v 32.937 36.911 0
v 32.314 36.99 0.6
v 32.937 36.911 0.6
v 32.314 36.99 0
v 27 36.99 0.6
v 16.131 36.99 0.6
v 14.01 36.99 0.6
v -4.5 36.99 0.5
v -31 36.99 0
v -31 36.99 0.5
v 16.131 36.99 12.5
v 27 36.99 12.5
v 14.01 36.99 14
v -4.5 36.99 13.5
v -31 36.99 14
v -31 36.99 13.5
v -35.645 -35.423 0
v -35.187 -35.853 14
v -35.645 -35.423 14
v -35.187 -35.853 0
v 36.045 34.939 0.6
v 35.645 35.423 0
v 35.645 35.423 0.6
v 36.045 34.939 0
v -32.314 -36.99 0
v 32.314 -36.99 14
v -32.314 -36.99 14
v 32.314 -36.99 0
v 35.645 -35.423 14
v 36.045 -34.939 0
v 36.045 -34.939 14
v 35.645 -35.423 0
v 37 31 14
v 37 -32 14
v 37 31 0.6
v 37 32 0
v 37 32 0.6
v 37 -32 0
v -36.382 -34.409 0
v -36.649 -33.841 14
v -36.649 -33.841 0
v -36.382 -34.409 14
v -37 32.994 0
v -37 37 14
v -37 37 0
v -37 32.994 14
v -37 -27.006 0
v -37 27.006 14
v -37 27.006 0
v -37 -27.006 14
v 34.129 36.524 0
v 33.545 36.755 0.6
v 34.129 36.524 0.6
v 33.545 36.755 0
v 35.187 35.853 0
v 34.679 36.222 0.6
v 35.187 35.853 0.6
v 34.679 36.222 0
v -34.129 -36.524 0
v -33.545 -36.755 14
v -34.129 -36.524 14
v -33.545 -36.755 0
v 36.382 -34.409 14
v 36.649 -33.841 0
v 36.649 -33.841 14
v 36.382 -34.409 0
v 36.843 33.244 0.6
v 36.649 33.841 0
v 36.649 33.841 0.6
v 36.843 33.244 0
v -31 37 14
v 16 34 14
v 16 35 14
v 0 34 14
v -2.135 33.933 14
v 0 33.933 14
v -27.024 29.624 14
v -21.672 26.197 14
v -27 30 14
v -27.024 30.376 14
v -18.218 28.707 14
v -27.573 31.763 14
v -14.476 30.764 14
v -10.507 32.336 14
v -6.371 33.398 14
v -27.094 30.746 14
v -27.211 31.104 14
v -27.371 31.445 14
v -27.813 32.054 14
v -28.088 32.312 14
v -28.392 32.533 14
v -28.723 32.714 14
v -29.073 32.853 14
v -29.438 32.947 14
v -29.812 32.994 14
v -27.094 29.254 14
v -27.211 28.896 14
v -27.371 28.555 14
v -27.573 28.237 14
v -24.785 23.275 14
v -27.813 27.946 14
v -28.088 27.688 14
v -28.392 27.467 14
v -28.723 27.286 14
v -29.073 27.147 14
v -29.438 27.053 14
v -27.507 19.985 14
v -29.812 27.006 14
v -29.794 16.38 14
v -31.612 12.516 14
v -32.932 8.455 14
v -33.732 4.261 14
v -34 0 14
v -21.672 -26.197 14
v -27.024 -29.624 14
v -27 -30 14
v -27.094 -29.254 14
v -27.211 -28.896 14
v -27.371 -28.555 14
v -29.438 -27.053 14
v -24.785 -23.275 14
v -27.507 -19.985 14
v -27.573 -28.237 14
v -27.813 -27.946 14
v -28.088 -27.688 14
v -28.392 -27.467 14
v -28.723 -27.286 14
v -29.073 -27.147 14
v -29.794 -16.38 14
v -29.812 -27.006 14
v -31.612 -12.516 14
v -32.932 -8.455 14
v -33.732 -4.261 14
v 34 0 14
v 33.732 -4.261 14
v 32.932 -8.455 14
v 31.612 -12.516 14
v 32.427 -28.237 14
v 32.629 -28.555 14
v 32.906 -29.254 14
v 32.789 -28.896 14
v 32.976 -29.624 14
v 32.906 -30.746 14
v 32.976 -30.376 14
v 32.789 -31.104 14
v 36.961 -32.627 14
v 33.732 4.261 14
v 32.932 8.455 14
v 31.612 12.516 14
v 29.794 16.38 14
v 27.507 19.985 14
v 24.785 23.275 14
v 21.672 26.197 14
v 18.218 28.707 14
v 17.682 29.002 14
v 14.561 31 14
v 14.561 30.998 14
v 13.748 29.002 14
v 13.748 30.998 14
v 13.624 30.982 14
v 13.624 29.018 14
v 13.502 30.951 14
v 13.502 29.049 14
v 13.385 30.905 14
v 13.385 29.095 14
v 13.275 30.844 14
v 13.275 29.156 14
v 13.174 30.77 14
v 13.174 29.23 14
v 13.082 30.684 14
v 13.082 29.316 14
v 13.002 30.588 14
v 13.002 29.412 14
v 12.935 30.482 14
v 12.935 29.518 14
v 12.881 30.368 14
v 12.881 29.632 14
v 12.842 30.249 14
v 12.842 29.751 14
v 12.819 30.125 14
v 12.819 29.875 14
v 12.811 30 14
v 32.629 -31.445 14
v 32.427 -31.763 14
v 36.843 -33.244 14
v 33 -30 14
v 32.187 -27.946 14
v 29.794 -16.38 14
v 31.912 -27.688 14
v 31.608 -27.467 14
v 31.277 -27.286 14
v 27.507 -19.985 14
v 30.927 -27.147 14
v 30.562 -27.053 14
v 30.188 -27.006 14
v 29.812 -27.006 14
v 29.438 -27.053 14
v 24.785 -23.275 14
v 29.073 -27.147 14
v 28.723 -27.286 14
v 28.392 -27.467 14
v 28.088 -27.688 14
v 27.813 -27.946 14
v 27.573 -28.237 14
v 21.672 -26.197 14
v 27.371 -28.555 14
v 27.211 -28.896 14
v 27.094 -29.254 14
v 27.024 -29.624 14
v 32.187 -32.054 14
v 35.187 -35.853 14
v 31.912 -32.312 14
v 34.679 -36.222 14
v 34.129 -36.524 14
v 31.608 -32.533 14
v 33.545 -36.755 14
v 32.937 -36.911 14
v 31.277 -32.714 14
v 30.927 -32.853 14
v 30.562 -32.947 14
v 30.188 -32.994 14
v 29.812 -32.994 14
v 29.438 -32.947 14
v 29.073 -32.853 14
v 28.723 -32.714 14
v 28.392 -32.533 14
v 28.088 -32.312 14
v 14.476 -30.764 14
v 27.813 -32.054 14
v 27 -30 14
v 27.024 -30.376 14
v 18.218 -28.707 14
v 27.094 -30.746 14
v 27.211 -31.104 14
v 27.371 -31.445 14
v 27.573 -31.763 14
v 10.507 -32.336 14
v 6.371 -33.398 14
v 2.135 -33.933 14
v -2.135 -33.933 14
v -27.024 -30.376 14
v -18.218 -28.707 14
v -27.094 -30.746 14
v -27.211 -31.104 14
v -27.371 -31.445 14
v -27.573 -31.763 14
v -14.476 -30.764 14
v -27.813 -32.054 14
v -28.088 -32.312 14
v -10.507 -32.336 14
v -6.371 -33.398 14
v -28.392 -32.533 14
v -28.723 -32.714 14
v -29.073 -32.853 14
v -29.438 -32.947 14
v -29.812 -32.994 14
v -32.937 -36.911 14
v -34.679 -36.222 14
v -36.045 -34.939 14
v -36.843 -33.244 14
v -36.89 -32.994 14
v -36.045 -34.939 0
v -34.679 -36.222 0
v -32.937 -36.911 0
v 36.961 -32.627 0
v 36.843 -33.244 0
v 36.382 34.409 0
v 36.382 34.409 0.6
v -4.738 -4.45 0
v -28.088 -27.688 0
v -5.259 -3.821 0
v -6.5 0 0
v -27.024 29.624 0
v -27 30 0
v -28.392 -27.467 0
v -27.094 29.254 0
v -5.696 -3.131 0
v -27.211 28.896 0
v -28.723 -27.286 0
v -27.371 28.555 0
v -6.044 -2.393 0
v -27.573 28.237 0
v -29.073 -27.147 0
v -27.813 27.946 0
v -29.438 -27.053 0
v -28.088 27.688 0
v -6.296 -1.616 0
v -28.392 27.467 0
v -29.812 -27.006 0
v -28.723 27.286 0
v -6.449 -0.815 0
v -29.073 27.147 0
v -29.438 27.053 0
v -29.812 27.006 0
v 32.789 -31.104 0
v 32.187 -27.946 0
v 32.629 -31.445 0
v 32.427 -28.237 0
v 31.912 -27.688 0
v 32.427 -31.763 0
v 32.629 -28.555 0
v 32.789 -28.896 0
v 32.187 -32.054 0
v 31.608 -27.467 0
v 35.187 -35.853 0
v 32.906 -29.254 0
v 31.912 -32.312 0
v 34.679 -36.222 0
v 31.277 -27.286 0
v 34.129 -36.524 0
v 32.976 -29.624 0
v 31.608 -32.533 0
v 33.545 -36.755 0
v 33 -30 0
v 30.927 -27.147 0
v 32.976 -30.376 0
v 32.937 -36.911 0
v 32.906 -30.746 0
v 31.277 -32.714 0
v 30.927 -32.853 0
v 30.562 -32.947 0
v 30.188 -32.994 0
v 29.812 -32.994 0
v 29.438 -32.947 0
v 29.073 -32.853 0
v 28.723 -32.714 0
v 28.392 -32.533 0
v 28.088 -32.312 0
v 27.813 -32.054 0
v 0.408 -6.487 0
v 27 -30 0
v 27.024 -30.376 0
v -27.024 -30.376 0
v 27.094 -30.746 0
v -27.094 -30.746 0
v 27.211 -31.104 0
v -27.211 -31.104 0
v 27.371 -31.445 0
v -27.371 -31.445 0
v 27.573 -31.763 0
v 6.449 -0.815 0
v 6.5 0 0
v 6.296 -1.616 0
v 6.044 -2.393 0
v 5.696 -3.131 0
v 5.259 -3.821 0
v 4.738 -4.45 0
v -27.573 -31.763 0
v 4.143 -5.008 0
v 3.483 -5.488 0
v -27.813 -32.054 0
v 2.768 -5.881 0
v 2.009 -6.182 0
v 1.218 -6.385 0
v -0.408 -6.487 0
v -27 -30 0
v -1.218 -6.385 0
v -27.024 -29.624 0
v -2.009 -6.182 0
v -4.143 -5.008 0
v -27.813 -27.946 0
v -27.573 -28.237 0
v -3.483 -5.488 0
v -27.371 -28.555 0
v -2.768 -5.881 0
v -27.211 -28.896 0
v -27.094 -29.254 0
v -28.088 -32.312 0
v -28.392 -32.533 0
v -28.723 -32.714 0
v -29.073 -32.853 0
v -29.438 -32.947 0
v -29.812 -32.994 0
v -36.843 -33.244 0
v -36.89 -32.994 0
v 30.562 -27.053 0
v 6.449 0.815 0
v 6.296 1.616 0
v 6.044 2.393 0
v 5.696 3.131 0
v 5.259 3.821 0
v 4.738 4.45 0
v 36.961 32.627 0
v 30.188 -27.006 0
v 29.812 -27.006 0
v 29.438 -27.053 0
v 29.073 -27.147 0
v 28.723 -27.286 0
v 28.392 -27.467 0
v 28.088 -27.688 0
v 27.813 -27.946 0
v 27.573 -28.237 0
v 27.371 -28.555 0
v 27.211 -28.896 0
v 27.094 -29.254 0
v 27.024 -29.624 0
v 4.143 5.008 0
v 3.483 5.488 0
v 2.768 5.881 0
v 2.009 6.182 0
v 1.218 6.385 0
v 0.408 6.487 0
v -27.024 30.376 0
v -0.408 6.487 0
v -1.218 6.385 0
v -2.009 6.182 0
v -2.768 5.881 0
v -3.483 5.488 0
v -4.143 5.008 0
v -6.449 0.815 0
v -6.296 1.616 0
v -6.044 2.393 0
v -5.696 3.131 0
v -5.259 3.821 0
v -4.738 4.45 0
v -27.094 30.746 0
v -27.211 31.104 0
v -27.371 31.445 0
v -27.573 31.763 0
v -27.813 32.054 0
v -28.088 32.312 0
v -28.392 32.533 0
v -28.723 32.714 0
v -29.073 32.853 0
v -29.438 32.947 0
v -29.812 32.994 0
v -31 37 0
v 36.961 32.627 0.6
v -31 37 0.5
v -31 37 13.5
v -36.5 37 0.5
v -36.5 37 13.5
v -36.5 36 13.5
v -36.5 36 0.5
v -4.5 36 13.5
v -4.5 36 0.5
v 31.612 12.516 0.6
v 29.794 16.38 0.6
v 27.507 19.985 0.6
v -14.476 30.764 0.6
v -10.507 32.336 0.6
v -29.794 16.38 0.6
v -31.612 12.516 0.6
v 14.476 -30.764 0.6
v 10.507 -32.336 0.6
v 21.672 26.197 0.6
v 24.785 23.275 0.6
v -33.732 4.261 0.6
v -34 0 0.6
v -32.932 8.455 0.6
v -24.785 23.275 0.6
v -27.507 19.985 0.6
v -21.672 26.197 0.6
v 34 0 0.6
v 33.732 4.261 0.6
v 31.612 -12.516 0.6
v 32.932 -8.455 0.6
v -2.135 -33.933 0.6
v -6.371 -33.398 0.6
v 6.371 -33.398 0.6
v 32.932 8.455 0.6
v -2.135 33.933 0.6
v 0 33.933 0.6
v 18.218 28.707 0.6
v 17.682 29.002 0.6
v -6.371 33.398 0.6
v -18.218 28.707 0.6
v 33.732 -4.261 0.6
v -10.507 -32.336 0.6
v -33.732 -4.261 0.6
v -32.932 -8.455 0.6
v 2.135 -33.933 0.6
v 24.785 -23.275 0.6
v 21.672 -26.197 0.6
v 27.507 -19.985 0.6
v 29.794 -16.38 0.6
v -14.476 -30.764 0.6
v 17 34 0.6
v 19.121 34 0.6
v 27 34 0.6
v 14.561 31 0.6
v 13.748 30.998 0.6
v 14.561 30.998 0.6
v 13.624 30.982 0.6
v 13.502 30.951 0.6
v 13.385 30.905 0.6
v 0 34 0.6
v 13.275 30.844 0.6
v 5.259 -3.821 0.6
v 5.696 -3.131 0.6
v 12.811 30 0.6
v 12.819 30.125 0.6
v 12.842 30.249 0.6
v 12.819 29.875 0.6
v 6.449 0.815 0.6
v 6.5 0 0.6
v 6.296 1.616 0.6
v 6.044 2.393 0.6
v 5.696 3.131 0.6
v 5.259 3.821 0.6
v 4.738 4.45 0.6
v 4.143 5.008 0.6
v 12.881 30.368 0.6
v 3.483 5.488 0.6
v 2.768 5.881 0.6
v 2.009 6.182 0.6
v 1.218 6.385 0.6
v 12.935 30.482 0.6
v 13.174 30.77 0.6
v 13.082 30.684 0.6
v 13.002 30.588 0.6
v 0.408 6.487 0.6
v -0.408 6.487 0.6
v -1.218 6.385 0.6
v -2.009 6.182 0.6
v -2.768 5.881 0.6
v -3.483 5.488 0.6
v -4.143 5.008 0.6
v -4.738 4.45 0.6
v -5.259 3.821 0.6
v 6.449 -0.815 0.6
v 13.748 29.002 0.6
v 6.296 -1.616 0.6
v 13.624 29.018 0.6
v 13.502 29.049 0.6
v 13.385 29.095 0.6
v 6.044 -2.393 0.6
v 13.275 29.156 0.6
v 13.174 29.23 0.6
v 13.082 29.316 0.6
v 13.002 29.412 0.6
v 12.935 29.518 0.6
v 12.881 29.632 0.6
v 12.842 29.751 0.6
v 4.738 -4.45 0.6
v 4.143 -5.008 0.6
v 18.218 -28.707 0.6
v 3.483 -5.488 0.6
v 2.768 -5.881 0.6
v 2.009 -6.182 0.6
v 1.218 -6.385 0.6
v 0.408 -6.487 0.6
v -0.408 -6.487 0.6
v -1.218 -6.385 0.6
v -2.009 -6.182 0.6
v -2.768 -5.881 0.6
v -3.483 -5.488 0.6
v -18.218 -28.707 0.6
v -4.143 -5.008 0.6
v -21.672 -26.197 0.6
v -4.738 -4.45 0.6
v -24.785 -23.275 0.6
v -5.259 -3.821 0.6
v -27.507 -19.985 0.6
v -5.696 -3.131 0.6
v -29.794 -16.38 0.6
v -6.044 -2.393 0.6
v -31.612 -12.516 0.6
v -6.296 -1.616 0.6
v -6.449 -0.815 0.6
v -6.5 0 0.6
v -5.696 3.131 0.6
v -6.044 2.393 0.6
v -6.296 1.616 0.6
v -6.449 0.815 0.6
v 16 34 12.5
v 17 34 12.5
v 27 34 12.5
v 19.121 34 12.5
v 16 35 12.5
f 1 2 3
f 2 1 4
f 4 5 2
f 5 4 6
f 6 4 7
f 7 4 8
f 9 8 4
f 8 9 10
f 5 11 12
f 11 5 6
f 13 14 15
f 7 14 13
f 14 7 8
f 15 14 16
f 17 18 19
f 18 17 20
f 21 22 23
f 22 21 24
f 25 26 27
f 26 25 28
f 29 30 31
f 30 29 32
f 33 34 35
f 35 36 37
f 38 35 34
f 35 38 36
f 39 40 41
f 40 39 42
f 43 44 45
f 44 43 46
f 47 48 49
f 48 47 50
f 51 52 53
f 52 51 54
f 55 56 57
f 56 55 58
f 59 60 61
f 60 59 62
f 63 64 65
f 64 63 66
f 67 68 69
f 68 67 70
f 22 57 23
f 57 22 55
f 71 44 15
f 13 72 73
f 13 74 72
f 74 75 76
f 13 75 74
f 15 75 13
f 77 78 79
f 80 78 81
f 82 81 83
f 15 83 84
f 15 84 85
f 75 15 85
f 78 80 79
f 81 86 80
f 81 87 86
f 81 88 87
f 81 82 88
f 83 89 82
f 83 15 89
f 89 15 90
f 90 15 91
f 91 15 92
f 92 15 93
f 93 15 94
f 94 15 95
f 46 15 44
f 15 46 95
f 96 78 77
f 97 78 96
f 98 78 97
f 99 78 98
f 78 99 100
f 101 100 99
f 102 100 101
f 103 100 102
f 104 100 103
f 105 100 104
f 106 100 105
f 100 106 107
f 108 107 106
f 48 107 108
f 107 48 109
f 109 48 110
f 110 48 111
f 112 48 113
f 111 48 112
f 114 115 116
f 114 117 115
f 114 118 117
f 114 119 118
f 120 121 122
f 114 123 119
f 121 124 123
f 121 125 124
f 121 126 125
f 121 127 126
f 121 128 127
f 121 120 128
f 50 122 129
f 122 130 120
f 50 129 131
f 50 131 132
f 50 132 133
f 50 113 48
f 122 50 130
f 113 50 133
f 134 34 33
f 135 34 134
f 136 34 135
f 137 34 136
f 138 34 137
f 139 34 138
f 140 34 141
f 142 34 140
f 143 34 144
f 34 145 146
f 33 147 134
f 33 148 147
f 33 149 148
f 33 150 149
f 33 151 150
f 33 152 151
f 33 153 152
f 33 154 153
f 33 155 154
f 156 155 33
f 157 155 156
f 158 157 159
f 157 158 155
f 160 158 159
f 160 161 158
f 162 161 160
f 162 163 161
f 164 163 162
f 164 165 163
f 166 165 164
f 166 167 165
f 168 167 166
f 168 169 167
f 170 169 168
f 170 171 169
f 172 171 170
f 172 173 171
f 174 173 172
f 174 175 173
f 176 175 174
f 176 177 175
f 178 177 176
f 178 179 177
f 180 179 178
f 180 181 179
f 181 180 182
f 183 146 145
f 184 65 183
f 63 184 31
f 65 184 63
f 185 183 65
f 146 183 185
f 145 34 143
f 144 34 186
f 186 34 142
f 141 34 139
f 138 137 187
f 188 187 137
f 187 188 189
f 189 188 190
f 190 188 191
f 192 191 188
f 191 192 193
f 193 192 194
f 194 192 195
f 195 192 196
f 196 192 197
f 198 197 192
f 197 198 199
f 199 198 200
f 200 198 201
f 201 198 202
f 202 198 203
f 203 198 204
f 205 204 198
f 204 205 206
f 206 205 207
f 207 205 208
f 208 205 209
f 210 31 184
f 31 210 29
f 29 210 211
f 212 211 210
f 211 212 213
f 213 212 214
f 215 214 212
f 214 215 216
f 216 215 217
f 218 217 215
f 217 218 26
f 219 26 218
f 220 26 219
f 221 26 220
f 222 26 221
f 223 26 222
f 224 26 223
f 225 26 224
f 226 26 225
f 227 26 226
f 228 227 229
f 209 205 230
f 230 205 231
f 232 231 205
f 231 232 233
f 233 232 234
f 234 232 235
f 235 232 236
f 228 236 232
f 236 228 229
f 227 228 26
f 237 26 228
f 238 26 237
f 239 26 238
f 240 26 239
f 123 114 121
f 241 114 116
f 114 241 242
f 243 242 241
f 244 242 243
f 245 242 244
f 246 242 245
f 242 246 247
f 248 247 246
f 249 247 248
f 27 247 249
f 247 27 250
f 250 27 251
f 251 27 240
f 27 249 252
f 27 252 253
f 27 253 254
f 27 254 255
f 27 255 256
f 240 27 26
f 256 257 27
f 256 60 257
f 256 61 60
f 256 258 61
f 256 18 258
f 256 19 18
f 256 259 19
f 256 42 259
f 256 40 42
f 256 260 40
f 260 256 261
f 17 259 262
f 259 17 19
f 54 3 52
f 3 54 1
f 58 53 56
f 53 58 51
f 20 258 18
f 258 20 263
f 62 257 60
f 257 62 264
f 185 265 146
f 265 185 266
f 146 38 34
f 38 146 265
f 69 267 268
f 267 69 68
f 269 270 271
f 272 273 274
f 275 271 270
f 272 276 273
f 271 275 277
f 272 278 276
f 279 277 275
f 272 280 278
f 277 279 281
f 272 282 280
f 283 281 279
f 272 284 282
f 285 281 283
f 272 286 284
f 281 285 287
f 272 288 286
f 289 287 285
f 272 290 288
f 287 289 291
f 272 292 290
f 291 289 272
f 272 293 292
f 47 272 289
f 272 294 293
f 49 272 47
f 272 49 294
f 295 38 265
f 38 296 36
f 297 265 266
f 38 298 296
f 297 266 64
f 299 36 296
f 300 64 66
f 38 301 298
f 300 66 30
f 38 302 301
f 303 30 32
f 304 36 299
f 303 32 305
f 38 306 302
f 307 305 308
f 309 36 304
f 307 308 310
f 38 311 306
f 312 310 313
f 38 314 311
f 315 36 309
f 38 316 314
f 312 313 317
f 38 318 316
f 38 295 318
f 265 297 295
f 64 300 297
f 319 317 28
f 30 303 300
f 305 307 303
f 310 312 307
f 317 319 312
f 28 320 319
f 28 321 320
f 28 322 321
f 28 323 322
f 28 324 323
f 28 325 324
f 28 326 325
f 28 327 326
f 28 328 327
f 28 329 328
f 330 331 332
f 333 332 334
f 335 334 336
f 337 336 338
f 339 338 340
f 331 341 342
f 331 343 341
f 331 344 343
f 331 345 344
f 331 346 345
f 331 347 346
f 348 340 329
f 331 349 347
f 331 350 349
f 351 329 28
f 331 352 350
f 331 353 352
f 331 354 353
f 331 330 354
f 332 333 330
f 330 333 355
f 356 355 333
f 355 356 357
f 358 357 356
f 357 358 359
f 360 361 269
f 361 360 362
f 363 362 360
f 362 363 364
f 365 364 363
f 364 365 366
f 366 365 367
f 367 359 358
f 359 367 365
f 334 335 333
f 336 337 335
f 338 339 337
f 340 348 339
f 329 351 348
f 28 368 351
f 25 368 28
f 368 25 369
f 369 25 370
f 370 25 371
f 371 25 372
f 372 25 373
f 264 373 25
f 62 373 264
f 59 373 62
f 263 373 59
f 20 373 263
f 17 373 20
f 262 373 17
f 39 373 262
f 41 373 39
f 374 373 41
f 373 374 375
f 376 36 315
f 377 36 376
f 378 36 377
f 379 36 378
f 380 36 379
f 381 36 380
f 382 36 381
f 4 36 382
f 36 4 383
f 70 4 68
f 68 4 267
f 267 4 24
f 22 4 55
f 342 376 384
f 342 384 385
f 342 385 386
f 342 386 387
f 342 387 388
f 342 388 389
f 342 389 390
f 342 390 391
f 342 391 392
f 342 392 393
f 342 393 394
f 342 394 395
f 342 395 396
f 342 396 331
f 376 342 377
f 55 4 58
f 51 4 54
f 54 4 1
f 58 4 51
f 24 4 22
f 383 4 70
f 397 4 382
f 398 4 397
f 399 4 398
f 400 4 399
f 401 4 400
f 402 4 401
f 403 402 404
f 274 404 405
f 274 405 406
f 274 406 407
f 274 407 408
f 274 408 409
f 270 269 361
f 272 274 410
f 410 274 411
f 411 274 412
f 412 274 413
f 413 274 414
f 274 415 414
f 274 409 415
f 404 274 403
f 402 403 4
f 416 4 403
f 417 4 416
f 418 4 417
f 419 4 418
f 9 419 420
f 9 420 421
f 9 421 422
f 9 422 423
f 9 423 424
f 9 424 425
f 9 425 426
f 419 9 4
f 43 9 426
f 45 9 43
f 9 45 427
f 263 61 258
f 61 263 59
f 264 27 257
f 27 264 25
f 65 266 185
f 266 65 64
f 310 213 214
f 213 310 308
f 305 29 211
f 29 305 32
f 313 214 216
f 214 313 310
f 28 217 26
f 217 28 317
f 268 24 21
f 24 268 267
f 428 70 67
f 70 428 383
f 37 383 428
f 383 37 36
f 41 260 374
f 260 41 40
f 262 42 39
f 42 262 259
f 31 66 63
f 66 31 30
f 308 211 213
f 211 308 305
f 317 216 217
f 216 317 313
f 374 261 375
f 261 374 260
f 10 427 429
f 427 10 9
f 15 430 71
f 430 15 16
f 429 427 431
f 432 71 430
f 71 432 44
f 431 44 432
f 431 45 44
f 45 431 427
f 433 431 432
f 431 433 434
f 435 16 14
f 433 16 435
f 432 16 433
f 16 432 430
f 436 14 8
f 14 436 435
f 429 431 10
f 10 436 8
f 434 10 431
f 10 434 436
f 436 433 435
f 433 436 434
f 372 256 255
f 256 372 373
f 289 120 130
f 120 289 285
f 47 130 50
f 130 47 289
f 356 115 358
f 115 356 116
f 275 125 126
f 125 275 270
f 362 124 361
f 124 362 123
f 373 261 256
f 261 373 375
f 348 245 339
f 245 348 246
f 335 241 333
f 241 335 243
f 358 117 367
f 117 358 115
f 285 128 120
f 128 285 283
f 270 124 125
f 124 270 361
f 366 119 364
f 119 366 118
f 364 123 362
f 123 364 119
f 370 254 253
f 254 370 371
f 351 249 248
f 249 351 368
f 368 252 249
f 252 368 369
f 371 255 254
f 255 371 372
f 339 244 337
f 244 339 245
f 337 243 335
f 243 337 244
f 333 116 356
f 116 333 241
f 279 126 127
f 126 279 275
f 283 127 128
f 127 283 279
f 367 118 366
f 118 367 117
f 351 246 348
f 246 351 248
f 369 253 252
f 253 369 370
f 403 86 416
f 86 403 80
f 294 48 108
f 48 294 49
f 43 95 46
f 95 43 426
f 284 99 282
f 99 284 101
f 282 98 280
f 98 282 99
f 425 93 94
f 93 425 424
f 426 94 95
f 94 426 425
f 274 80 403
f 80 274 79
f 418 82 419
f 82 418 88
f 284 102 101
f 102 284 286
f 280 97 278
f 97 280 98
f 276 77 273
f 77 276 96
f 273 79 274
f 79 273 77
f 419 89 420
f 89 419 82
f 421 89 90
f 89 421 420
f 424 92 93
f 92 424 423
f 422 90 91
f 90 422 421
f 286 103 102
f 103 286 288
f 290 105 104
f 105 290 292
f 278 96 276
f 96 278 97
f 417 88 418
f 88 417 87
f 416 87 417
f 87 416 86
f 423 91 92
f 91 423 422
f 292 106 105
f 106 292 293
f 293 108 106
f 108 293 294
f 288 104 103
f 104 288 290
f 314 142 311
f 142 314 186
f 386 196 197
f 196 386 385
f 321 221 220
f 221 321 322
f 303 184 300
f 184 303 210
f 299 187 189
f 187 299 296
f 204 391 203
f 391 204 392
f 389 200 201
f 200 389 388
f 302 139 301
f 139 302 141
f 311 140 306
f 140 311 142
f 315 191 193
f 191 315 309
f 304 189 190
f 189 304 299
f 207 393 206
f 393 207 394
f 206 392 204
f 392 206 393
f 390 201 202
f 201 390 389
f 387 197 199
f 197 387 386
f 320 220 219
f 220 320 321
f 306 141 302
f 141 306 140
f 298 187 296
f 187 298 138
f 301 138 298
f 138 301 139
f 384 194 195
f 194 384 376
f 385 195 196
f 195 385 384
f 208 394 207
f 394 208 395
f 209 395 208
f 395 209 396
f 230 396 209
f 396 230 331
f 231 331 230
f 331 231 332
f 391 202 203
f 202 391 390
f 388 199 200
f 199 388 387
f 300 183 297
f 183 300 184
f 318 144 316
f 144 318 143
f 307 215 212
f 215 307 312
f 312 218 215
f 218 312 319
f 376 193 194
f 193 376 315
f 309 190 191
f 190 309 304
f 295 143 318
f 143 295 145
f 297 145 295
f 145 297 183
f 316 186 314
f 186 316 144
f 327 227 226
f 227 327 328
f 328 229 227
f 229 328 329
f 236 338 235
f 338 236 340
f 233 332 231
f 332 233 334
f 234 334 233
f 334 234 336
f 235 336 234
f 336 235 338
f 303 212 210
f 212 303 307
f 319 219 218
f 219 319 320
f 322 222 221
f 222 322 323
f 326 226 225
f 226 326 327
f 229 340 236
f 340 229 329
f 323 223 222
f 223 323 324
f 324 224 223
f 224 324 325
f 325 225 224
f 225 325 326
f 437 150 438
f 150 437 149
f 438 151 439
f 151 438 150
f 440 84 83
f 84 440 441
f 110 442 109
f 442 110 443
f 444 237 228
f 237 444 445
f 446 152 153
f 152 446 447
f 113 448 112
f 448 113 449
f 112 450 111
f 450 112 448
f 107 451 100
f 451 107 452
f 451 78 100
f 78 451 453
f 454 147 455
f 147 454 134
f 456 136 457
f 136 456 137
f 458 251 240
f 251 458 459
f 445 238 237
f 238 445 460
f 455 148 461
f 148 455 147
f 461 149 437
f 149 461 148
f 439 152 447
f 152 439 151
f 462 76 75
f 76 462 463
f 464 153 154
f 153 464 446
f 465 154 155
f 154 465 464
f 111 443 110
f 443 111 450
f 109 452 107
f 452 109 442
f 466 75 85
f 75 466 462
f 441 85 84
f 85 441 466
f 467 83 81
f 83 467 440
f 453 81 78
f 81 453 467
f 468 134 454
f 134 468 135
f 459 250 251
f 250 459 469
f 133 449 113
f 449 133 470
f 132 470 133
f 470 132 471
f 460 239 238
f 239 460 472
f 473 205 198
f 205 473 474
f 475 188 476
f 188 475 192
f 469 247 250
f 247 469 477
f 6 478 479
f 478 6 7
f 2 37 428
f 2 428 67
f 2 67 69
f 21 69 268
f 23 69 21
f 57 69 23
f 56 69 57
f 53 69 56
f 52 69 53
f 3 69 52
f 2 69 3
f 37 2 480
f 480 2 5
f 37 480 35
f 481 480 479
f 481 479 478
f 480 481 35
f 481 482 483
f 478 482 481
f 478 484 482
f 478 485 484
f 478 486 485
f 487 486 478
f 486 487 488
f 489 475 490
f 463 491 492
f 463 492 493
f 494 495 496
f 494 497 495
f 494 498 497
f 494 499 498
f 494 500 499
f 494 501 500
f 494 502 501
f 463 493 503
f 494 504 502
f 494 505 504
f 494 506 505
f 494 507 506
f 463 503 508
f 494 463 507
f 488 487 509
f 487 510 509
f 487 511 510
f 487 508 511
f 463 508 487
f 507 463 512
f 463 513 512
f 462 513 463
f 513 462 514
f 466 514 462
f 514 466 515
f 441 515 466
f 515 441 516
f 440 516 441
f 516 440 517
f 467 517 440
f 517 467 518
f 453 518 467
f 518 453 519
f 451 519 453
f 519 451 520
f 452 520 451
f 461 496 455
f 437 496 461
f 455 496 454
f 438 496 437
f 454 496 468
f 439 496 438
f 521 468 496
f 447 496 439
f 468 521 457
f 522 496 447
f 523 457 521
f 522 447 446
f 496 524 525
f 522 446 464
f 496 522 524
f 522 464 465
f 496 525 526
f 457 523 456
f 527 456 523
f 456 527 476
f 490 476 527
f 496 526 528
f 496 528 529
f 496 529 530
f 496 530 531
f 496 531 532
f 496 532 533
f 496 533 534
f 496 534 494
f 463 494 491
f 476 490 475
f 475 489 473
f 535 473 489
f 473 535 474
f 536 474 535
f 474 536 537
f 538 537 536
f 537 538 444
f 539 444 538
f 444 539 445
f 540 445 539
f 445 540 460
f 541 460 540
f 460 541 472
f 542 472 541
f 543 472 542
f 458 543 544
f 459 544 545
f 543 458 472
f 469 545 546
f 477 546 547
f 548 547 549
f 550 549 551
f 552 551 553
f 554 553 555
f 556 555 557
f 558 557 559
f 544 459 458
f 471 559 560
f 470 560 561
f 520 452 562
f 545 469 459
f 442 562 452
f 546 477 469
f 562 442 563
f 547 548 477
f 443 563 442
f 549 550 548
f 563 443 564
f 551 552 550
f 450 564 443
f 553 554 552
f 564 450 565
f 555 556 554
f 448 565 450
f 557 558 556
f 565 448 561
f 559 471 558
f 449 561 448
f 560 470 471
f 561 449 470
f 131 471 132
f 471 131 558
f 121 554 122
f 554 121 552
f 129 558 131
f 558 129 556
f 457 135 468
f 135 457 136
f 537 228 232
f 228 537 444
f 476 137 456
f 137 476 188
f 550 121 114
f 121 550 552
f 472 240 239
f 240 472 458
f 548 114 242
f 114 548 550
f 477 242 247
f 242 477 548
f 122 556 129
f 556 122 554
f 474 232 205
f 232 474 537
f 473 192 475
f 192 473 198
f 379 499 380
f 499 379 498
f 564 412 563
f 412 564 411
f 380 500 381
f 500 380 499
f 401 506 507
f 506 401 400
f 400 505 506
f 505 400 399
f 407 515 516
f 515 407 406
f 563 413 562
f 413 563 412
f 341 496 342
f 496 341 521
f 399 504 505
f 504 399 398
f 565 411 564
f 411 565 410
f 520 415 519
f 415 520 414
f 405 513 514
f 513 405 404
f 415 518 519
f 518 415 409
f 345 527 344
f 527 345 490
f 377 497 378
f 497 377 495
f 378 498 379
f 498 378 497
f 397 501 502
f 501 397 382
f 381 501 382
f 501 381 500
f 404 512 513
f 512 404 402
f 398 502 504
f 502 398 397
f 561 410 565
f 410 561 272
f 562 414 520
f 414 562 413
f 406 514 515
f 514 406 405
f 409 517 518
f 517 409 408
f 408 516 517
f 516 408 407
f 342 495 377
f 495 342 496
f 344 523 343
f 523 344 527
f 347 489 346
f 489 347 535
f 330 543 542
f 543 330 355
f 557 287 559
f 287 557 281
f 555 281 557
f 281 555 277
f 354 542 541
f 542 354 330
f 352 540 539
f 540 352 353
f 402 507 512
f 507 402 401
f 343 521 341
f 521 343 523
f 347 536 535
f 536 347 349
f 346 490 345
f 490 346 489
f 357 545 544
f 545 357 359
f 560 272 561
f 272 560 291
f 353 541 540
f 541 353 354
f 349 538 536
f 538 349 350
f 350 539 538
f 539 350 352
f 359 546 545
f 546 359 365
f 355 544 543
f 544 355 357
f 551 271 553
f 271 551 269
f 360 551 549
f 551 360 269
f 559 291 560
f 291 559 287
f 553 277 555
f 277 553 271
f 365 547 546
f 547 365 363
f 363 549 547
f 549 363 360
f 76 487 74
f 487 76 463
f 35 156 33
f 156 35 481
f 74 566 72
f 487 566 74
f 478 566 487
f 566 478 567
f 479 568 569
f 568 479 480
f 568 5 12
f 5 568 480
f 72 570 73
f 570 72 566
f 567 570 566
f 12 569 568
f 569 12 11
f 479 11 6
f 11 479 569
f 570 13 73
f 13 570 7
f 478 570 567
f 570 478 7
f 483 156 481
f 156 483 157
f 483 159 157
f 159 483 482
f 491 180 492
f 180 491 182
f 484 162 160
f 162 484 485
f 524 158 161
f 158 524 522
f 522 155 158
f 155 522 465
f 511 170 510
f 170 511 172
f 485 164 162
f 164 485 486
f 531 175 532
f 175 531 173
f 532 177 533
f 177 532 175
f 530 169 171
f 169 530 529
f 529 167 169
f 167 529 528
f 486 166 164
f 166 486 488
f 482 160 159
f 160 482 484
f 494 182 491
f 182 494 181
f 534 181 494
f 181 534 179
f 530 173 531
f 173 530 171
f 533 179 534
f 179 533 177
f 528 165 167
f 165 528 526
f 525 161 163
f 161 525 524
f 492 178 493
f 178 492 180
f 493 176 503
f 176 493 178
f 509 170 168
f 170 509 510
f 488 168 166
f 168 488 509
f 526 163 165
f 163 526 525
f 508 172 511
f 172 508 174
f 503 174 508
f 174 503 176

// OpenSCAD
$fn = 50;


union() {
	difference() {
		union() {
			translate(v = [0, 0, 0]) {
				rotate(a = [0, 0, 0]) {
					hull() {
						translate(v = [-32.0000000000, 32.0000000000, 0]) {
							rotate(a = [0, 0, 0]) {
								translate(v = [0, 0, 0]) {
									rotate(a = [0, 0, 0]) {
										cylinder(h = 14, r = 5);
									}
								}
							}
						}
						translate(v = [32.0000000000, 32.0000000000, 0]) {
							rotate(a = [0, 0, 0]) {
								translate(v = [0, 0, 0]) {
									rotate(a = [0, 0, 0]) {
										cylinder(h = 14, r = 5);
									}
								}
							}
						}
						translate(v = [-32.0000000000, -32.0000000000, 0]) {
							rotate(a = [0, 0, 0]) {
								translate(v = [0, 0, 0]) {
									rotate(a = [0, 0, 0]) {
										cylinder(h = 14, r = 5);
									}
								}
							}
						}
						translate(v = [32.0000000000, -32.0000000000, 0]) {
							rotate(a = [0, 0, 0]) {
								translate(v = [0, 0, 0]) {
									rotate(a = [0, 0, 0]) {
										cylinder(h = 14, r = 5);
									}
								}
							}
						}
					}
				}
			}
			translate(v = [-37.0000000000, 31.0000000000, 0]) {
				rotate(a = [0, 0, 0]) {
					cube(size = [6, 6, 14]);
				}
			}
		}
		union() {
			#translate(v = [-36.5000000000, 36.0000000000, 0.5000000000]) {
				rotate(a = [0, 0, 0]) {
					cube(size = [32, 1, 13.0000000000]);
				}
			}
			translate(v = [-37.5000000000, -30.0000000000, -125]) {
				rotate(a = [0, 0, 0]) {
					hull() {
						translate(v = [7.5000000000, 0, 0]) {
							rotate(a = [0, 0, 0]) {
								translate(v = [0, 0, 0]) {
									rotate(a = [0, 0, 0]) {
										cylinder(h = 250, r = 3.0000000000);
									}
								}
							}
						}
						translate(v = [-7.5000000000, 0, 0]) {
							rotate(a = [0, 0, 0]) {
								translate(v = [0, 0, 0]) {
									rotate(a = [0, 0, 0]) {
										cylinder(h = 250, r = 3.0000000000);
									}
								}
							}
						}
					}
				}
			}
			translate(v = [-37.5000000000, 30.0000000000, -125]) {
				rotate(a = [0, 0, 0]) {
					hull() {
						translate(v = [7.5000000000, 0, 0]) {
							rotate(a = [0, 0, 0]) {
								translate(v = [0, 0, 0]) {
									rotate(a = [0, 0, 0]) {
										cylinder(h = 250, r = 3.0000000000);
									}
								}
							}
						}
						translate(v = [-7.5000000000, 0, 0]) {
							rotate(a = [0, 0, 0]) {
								translate(v = [0, 0, 0]) {
									rotate(a = [0, 0, 0]) {
										cylinder(h = 250, r = 3.0000000000);
									}
								}
							}
						}
					}
				}
			}
			translate(v = [30.0000000000, -30.0000000000, -125.0000000000]) {
				rotate(a = [0, 0, 0]) {
					cylinder(h = 250, r = 3.0000000000);
				}
			}
			translate(v = [0, 0, 0.6000000000]) {
				rotate(a = [0, 0, 0]) {
					cylinder(h = 16.4000000000, r = 34.0000000000);
				}
			}
			translate(v = [0, 0, -7.0000000000]) {
				rotate(a = [0, 0, 0]) {
					cylinder(h = 14, r = 6.5000000000);
				}
			}
			translate(v = [0.0000000000, 31.0000000000, 0.6000000000]) {
				rotate(a = [0, 0, 0]) {
					cube(size = [37.0000000000, 3, 16.4000000000]);
				}
			}
			translate(v = [27.0000000000, 31.0000000000, 0.6000000000]) {
				rotate(a = [0, 0, 0]) {
					cube(size = [10, 6, 16.4000000000]);
				}
			}
			translate(v = [16.0000000000, 31.0000000000, 12.5000000000]) {
				rotate(a = [0, 0, 0]) {
					cube(size = [21, 6, 1.5000000000]);
				}
			}
			translate(v = [13.2500000000, 37.7500000000, 0.6000000000]) {
				rotate(a = [0, 0, -45]) {
					cube(size = [7.5000000000, 1.5000000000, 16.4000000000]);
				}
			}
			translate(v = [7.0610000000, 29.0000000000, 0.6000000000]) {
				rotate(a = [0, 0, 0]) {
					cube(size = [7.5000000000, 2, 13.4000000000]);
				}
			}
		}
	}
	union() {
		translate(v = [16.3110000000, 30.0000000000, 0]) {
			rotate(a = [0, 0, 0]) {
				hull() {
					translate(v = [2.5000000000, 0, 0]) {
						rotate(a = [0, 0, 0]) {
							#translate(v = [0, 0, 0]) {
								rotate(a = [0, 0, 0]) {
									cylinder(h = 14, r = 1.0000000000);
								}
							}
						}
					}
					translate(v = [-2.5000000000, 0, 0]) {
						rotate(a = [0, 0, 0]) {
							#translate(v = [0, 0, 0]) {
								rotate(a = [0, 0, 0]) {
									cylinder(h = 14, r = 1.0000000000);
								}
							}
						}
					}
				}
			}
		}
	}
}
